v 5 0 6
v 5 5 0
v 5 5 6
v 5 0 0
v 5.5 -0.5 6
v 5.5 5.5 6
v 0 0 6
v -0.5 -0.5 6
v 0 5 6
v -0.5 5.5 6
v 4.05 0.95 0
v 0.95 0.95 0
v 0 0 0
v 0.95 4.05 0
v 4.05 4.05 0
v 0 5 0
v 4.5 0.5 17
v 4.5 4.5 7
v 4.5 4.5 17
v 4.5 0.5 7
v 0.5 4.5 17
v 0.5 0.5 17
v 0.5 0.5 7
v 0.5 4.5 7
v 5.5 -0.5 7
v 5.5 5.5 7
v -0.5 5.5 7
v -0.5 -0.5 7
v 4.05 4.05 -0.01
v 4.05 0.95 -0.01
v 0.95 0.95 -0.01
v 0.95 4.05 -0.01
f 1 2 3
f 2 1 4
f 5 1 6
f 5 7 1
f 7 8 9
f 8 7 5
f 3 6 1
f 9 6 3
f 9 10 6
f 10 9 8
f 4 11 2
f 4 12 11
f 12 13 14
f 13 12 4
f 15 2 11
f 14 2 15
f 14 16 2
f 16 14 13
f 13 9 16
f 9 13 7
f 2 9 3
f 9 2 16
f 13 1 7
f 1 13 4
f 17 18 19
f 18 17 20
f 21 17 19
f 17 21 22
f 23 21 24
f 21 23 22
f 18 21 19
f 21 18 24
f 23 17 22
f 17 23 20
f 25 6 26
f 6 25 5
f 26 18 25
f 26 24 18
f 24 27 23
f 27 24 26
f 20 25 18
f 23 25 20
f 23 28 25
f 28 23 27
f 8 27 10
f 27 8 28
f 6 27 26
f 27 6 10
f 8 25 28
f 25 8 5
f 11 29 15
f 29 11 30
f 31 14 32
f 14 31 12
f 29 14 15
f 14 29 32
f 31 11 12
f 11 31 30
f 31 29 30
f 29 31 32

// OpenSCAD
//Draft button for radio replacement
//Draft structure only not real measurments yet
//Shape should be approx correct
//might round corners of top button of needed

buttonTop = [4,4,11] ;
buttonBottom = [5,5,6] ;
buttonBottomCavity = [3.1,3.1,7] ;
buttonBrim = [6,6,1] ;
wiggle = .01;
#difference () {
    union(){
        //bottom
        cube(buttonBottom);
        //Brim
        translate([buttonBottom.x/2-buttonTop.x/2,buttonBottom.y/2-buttonTop.y/2,buttonBottom.z]) cube(buttonTop);
        //top
        translate([buttonBottom.x/2-buttonBrim.x/2,buttonBottom.y/2-buttonBrim.y/2,buttonBottom.z]) cube(buttonBrim);
    }
    //cavity
    translate([buttonBottom.x/2-buttonBottomCavity.x/2,buttonBottom.y/2-buttonBottomCavity.y/2,-wiggle]) cube(buttonBottomCavity+[0,0,wiggle]);
}    
    translate([buttonBottom.x/2-buttonBottomCavity.x/2,buttonBottom.y/2-buttonBottomCavity.y/2,-wiggle]) cube(buttonBottomCavity+[0,0,wiggle]);
